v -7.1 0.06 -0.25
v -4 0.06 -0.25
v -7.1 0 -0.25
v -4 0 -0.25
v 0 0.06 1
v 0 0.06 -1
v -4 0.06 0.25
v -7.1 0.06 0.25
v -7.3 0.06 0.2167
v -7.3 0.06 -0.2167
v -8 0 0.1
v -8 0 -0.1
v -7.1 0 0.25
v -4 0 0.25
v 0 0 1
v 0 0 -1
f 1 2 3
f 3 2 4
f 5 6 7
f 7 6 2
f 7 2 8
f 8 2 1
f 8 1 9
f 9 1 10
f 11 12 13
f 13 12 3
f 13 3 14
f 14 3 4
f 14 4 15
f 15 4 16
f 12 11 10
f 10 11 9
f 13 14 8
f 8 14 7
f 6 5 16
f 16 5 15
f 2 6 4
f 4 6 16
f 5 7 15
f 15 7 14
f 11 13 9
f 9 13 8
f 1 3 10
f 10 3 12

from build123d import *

# Parameters (mm, degrees)
BOSS_EXTRUDE1_DEPTH = 0.06
CUT_EXTRUDE3_DEPTH  = 9.09728967
CUT_EXTRUDE4_DEPTH  = 9.09728967


with BuildPart() as part:
    # Sketch1 → Boss-Extrude1 (new body)
    with BuildSketch(Plane(origin=(0, 0, 0), x_dir=(1, 0, 0), z_dir=(0, 1, 0))):
        with BuildLine():
            ThreePointArc((-0.362264151, -0.932075472), (-0.747576714, -0.664175471), (-0.968245837, -0.25))
            Line((-0.968245837, -0.25), (-4, -0.25))
            Line((-4, -0.25), (-0.362264151, -0.932075472))
        make_face()
        with BuildLine():
            ThreePointArc((-0.968245837, 0.25), (-0.747576714, 0.664175471), (-0.362264151, 0.932075472))
            Line((-0.362264151, 0.932075472), (-4, 0.25))
            Line((-4, 0.25), (-0.968245837, 0.25))
        make_face()
        with BuildLine():
            ThreePointArc((-0.968245837, -0.25), (-1, 0), (-0.968245837, 0.25))
            Line((-0.968245837, 0.25), (-4, 0.25))
            Line((-4, 0.25), (-8, 0.25))
            Line((-8, 0.25), (-8, -0.25))
            Line((-8, -0.25), (-4, -0.25))
            Line((-4, -0.25), (-0.968245837, -0.25))
        make_face()
        with BuildLine():
            Line((0, -1), (0, -0.25))
            Line((0, -0.25), (-0.968245837, -0.25))
            ThreePointArc((-0.968245837, -0.25), (-0.747576714, -0.664175471), (-0.362264151, -0.932075472))
            Line((-0.362264151, -0.932075472), (0, -1))
        make_face()
        with BuildLine():
            Line((0, 0.25), (0, 1))
            Line((0, 1), (-0.362264151, 0.932075472))
            ThreePointArc((-0.362264151, 0.932075472), (-0.747576714, 0.664175471), (-0.968245837, 0.25))
            Line((-0.968245837, 0.25), (0, 0.25))
        make_face()
        with BuildLine():
            Line((0, -0.25), (0, 0.25))
            Line((0, 0.25), (-0.968245837, 0.25))
            ThreePointArc((-0.968245837, 0.25), (-1, 0), (-0.968245837, -0.25))
            Line((-0.968245837, -0.25), (0, -0.25))
        make_face()
    extrude(amount=BOSS_EXTRUDE1_DEPTH)

    # Sketch5 → Cut-Extrude3 (cut, through all)
    with BuildSketch(Plane.XY.offset(0.25)):
        Polygon((-8, 0), (-8, 0.06), (-7.3, 0.06), align=None)
    extrude(amount=-CUT_EXTRUDE3_DEPTH, mode=Mode.SUBTRACT)

    # 3DSketch1 → Cut-Extrude4 (cut, through all)
    with BuildSketch(Plane(origin=(-8, 0.06, 0.25), x_dir=(0.8741572761215382, 0, -0.48564293117863155), z_dir=(0, 1, 0))):
        Polygon((0, 0), (0.07284644, 0.131123591), (0.786741549, -0.437078638), align=None)
        Polygon((1.029563014, 0), (0.242821466, 0.437078638), (0.169975026, 0.305955047), align=None)
    extrude(amount=-CUT_EXTRUDE4_DEPTH, mode=Mode.SUBTRACT)


solid = part.part
